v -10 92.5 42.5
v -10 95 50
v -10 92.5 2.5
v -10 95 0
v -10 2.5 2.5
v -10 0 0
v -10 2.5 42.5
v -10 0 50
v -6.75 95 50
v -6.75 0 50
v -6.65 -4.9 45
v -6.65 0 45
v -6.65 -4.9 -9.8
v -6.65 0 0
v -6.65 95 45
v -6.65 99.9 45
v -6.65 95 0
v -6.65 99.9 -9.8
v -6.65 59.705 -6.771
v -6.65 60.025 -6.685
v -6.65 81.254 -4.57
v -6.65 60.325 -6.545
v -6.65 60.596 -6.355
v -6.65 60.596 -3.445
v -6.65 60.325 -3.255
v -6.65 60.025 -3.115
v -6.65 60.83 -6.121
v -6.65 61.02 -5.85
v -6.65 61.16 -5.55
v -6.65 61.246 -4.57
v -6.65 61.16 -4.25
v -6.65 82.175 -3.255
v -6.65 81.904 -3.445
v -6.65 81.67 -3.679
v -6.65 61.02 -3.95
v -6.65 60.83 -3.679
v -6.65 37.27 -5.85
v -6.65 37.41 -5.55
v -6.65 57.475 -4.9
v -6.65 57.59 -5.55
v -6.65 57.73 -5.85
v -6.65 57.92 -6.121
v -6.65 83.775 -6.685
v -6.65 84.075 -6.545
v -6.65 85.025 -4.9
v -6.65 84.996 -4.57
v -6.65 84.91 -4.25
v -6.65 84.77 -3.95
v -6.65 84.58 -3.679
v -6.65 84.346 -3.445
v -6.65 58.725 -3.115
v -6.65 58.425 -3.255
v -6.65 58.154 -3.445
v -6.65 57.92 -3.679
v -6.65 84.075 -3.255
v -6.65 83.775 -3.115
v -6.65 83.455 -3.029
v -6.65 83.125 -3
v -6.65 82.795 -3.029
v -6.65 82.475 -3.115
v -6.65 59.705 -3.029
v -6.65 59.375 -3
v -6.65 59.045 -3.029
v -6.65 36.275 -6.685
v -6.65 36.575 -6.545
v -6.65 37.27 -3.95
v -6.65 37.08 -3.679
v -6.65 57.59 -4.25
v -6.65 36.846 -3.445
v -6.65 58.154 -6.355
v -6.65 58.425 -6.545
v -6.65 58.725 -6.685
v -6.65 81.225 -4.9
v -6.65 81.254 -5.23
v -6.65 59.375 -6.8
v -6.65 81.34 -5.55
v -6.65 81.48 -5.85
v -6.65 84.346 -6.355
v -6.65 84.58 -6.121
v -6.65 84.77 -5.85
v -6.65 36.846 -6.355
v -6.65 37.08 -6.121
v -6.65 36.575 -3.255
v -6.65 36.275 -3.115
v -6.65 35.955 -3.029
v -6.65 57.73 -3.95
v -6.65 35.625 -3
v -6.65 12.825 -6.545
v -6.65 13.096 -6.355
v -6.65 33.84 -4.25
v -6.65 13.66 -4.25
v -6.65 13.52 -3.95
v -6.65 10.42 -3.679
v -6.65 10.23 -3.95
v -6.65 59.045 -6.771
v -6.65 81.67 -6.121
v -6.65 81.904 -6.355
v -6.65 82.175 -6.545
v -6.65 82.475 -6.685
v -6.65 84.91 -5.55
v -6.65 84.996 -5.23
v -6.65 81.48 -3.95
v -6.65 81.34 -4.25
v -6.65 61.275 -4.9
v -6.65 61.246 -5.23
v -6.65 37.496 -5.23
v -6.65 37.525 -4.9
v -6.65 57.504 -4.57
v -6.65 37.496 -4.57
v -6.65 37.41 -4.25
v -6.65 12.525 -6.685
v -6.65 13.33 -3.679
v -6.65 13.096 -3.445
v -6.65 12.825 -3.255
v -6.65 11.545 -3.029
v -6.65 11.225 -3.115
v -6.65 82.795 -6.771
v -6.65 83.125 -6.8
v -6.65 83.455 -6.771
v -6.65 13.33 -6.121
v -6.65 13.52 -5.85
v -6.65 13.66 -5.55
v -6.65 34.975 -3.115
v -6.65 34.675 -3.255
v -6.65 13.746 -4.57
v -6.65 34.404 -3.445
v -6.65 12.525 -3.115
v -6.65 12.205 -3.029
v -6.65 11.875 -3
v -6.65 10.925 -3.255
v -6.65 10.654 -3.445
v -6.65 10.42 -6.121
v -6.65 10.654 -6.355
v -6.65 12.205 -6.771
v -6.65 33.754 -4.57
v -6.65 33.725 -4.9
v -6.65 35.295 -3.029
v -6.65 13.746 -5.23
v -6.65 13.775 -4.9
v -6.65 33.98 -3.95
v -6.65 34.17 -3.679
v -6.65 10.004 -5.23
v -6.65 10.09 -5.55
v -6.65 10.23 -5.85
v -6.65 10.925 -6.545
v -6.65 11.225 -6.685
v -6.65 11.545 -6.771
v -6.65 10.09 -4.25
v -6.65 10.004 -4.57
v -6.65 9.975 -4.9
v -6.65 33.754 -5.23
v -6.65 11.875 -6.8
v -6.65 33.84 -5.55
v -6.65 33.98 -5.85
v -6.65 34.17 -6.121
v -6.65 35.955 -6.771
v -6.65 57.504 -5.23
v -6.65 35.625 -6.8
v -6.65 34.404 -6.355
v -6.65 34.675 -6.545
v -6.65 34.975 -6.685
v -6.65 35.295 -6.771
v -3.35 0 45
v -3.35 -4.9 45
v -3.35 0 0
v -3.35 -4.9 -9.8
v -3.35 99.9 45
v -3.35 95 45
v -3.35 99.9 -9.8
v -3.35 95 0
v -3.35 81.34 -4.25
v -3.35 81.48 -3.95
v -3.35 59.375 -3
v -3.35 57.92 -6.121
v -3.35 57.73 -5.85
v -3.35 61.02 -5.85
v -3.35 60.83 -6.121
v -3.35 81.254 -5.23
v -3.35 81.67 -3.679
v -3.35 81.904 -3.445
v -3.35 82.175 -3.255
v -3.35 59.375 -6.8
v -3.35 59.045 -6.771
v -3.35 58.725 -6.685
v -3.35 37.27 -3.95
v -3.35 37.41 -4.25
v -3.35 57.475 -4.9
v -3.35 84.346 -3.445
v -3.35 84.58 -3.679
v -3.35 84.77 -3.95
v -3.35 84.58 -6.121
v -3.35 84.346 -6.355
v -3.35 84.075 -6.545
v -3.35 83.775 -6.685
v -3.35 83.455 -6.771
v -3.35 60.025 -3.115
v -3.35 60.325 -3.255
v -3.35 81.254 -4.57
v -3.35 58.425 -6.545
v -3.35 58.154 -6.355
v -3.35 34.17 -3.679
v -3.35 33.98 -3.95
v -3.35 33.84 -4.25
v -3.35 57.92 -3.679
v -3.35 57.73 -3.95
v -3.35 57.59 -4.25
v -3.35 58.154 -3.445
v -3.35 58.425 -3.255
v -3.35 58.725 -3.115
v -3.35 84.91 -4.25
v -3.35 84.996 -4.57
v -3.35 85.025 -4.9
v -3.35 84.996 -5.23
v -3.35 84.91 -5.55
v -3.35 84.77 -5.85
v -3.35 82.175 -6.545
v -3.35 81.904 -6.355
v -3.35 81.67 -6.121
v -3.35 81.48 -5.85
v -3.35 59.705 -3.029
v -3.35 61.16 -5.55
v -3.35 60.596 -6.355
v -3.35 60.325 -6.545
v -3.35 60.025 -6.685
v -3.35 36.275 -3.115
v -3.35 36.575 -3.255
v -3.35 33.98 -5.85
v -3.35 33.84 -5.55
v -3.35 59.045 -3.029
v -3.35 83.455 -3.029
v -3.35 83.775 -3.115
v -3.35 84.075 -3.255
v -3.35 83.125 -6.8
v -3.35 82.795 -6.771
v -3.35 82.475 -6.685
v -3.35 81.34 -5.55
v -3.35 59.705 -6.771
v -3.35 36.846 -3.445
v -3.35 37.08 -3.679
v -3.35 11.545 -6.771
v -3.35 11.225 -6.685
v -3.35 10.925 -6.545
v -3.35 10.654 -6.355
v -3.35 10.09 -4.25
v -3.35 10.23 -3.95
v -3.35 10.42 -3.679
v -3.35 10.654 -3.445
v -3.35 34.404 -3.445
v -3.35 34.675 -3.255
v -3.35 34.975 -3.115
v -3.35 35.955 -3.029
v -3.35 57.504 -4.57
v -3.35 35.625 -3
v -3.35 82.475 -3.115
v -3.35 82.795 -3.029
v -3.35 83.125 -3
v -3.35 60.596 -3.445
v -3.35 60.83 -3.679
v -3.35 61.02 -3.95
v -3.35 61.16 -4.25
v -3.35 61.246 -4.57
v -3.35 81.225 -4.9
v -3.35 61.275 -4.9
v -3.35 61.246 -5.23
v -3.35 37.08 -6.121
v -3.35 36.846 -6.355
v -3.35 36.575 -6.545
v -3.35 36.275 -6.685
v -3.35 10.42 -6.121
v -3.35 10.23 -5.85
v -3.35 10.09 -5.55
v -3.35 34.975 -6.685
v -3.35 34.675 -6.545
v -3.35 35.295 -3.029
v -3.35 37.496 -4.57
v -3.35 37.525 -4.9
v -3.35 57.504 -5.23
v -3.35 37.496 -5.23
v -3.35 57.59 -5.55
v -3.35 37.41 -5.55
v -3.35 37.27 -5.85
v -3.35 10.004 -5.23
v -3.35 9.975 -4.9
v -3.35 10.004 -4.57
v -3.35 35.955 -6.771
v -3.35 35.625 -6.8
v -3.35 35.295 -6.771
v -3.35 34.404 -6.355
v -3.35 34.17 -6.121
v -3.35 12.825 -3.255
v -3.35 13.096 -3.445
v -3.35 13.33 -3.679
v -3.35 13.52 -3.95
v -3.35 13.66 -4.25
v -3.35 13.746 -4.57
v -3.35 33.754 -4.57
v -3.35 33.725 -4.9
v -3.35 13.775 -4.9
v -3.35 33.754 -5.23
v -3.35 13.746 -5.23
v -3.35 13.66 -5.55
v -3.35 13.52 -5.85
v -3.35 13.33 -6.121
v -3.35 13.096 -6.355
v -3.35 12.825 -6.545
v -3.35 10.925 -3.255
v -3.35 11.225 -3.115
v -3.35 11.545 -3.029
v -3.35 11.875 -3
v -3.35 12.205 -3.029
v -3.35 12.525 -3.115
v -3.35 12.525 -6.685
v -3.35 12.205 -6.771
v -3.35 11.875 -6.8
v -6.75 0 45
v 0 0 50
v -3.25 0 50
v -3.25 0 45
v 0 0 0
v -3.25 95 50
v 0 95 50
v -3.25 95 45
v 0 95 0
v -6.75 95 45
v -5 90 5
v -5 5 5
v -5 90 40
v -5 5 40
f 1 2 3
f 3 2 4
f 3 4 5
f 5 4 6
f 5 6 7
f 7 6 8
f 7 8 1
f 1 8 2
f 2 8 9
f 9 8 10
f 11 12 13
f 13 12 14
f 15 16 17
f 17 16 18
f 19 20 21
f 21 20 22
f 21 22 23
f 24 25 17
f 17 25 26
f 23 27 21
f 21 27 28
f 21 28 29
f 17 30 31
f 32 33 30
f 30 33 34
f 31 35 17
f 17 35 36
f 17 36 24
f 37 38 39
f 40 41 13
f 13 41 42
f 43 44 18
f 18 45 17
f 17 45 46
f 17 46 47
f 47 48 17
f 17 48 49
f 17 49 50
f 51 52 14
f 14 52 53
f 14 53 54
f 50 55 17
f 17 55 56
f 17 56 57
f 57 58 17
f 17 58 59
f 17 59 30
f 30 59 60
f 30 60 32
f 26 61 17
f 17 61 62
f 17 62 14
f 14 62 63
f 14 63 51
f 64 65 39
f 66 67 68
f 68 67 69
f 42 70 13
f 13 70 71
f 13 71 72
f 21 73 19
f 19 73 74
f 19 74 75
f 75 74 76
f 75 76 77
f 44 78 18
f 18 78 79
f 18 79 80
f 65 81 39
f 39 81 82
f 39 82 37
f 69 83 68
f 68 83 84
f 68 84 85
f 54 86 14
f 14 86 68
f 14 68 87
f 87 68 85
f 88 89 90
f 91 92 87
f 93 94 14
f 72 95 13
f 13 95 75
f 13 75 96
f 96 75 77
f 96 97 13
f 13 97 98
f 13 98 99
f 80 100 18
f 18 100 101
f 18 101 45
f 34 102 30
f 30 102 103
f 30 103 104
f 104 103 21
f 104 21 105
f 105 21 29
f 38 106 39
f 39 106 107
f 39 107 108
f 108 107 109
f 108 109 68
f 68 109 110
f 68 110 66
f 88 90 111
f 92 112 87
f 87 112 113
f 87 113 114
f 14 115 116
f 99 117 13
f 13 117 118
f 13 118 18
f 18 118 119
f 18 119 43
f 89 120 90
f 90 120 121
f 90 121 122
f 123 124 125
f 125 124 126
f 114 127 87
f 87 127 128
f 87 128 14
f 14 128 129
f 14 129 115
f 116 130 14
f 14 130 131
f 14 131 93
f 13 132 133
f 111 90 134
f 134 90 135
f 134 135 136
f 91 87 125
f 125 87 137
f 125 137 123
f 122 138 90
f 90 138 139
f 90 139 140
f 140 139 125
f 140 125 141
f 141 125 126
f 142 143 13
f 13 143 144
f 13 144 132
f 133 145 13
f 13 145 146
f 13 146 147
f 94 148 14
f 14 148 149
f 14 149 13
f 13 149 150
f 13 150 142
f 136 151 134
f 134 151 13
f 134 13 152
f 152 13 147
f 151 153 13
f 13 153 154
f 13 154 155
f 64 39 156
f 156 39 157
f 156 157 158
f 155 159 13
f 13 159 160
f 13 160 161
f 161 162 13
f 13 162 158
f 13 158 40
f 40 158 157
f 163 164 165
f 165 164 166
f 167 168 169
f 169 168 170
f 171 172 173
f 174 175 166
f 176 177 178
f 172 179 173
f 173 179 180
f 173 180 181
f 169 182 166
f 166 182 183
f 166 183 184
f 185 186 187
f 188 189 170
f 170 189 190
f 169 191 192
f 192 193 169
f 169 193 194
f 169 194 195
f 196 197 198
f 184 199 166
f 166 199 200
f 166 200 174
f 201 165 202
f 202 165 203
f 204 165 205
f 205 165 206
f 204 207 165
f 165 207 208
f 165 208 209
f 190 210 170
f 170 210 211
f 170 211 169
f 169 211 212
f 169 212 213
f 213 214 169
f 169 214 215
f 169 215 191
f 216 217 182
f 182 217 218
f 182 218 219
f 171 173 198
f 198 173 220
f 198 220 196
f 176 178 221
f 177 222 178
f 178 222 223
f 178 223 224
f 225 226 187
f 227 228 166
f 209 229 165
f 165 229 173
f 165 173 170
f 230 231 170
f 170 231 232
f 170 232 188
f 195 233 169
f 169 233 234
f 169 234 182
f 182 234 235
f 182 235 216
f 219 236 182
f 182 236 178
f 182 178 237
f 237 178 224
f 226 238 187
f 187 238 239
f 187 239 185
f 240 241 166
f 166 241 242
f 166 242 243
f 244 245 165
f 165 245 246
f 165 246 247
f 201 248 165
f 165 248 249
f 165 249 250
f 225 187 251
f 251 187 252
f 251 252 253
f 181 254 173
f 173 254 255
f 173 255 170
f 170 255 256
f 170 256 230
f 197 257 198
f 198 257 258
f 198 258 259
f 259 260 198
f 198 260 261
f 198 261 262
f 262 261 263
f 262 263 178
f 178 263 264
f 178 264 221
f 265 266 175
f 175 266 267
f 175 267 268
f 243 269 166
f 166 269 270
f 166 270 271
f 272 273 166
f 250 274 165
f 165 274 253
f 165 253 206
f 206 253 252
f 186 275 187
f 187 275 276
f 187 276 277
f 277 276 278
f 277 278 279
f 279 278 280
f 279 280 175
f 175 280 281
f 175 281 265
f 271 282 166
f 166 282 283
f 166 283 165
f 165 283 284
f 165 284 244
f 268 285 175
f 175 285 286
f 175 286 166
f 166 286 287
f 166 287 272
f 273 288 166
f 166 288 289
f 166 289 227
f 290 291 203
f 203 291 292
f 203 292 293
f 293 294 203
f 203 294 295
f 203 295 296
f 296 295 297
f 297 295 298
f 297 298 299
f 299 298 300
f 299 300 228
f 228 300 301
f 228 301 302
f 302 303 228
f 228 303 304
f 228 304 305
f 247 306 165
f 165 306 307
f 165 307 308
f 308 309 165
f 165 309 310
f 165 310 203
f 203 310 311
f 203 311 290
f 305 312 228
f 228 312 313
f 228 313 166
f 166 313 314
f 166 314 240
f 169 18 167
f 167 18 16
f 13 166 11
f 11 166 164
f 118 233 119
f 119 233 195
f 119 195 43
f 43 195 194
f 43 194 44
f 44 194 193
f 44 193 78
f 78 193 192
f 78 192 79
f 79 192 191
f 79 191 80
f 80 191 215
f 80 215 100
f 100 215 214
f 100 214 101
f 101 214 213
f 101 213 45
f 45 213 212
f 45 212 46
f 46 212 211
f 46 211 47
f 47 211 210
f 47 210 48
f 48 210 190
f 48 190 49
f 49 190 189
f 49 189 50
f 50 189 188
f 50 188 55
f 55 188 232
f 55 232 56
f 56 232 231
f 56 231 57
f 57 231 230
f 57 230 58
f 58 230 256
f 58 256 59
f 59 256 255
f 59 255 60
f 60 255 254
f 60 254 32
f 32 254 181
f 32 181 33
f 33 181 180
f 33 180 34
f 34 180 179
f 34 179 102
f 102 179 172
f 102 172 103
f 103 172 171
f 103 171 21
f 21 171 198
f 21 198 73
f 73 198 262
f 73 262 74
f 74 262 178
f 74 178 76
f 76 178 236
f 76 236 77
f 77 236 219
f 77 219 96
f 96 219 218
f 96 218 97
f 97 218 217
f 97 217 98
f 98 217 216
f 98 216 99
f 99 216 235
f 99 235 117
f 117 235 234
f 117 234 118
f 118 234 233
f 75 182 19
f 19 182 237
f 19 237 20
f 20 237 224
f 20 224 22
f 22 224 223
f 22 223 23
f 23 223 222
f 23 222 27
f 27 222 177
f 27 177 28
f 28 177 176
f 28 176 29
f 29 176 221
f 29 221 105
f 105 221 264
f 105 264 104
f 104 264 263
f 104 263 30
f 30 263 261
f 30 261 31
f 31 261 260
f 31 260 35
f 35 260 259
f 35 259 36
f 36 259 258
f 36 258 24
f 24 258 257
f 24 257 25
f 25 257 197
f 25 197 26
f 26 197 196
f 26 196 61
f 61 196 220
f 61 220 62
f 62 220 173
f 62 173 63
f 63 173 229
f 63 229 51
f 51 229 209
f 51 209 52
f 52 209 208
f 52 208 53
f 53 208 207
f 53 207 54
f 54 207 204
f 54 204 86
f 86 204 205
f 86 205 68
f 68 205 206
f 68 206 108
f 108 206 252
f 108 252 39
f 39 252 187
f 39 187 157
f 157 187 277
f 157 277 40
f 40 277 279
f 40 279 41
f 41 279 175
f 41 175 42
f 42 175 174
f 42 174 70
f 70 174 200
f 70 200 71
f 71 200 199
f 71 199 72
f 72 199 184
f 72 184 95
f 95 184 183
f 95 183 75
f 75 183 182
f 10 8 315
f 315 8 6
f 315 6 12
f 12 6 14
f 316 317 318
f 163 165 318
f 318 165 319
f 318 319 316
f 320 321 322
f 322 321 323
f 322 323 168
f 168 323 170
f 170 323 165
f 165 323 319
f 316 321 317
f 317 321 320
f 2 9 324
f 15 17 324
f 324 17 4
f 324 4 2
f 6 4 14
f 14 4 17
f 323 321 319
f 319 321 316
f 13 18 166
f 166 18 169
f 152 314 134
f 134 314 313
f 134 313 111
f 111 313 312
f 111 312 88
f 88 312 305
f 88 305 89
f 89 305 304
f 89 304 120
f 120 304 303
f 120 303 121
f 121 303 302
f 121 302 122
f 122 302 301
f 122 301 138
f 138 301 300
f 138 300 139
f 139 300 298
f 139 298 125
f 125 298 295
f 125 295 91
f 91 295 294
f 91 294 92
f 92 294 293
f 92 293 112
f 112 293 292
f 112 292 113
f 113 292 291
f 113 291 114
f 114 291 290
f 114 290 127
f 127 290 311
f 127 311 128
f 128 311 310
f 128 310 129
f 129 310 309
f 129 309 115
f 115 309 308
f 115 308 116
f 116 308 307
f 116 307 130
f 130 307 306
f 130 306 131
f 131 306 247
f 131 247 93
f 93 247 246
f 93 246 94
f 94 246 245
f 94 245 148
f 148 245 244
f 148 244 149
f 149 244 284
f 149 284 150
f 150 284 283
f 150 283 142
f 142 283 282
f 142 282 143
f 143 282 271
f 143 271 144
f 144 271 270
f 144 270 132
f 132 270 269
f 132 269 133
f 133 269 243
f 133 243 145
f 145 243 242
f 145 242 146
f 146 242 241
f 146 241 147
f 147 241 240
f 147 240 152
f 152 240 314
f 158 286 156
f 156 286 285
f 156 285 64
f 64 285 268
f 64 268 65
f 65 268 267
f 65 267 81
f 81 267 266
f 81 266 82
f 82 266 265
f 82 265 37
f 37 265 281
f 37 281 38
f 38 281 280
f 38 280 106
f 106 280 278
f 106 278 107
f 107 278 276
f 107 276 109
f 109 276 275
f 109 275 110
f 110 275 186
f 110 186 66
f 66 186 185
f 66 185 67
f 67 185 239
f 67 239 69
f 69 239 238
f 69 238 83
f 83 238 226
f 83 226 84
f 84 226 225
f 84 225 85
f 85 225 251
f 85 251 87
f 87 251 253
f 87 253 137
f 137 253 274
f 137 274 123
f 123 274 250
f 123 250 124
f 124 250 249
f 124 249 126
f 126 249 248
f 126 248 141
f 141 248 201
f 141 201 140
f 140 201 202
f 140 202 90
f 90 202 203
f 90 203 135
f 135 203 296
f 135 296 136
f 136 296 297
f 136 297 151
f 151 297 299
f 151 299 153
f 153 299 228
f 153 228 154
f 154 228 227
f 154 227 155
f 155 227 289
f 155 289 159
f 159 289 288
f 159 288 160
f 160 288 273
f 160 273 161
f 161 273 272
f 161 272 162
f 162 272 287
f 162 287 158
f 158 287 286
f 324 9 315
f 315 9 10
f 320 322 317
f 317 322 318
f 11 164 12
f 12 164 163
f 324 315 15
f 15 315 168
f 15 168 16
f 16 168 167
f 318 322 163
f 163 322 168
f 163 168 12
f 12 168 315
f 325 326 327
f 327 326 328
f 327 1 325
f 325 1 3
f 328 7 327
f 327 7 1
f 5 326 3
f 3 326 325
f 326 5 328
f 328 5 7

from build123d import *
from OCP.BRepFilletAPI import BRepFilletAPI_MakeChamfer

# Parameters (mm, degrees)
SKETCH2_W           = 95
SKETCH2_H           = 50
BOSS_EXTRUDE1_DEPTH = 10
SKETCH3_W           = 3.3
SKETCH3_H           = 9.8
BOSS_EXTRUDE2_DEPTH = 95
SKETCH4_W           = 3.3
SKETCH4_H           = 59.8
BOSS_EXTRUDE3_DEPTH = 4.9
CUT_EXTRUDE1_REACH  = 113.912
SKETCH5_R           = 1.9
LPATTERN1_COUNT     = 4
LPATTERN1_PITCH     = 23.75
SKETCH7_W           = 3.5
SKETCH7_H           = 104.8
CUT_EXTRUDE6_DEPTH  = 5
SKETCH8_W           = 85
SKETCH8_H           = 35
CUT_EXTRUDE7_DEPTH  = 5
CHAMFER1_SIZE       = 2.5
CHAMFER1_SIZE_2     = 5


with BuildPart() as part:
    # Sketch2 → Boss-Extrude1 (new body)
    with BuildSketch(Plane.YZ):
        with Locations((47.5, 25)):
            Rectangle(SKETCH2_W, SKETCH2_H)
    extrude(amount=-BOSS_EXTRUDE1_DEPTH)

    # Sketch3 → Boss-Extrude2 (add)
    with BuildSketch(Plane(origin=(0, 95, 0), x_dir=(-1, 0, 0), z_dir=(0, 1, 0))):
        with Locations((5, -4.9)):
            Rectangle(SKETCH3_W, SKETCH3_H)
    extrude(amount=-BOSS_EXTRUDE2_DEPTH)

    # Sketch4 → Boss-Extrude3 (add)
    with BuildSketch(Plane(origin=(0, 95, 0), x_dir=(-1, 0, 0), z_dir=(0, 1, 0))):
        with Locations((5, 20.1)):
            Rectangle(SKETCH4_W, SKETCH4_H)
    boss_extrude3 = extrude(amount=BOSS_EXTRUDE3_DEPTH)

    # Mirror1: Boss-Extrude3 across plane
    add(boss_extrude3.mirror(Plane.ZX.offset(47.5)))

    # Sketch5 → Cut-Extrude1 (cut, up to next)
    with BuildSketch(Plane.YZ.offset(-3.35), mode=Mode.PRIVATE) as cut_extrude1_sk1:
        with Locations(Location((11.875, -4.9, 0), (0, 0, 270))):
            Circle(SKETCH5_R)
    cut_extrude1_tool1 = extrude(cut_extrude1_sk1.sketch, amount=-CUT_EXTRUDE1_REACH, mode=Mode.PRIVATE) & part.part
    cut_extrude1 = cut_extrude1_tool1.solids().sort_by_distance((-3.35, 11.875, -4.9))[0]
    add(cut_extrude1, mode=Mode.SUBTRACT)

    # LPattern1: Cut-Extrude1 ×4
    with Locations(*[(0, i * LPATTERN1_PITCH, 0) for i in range(1, LPATTERN1_COUNT)]):
        add(cut_extrude1, mode=Mode.SUBTRACT)

    # Sketch7 → Cut-Extrude6 (cut)
    with BuildSketch(Plane.XY.offset(50)):
        with Locations((-5, 47.5)):
            Rectangle(SKETCH7_W, SKETCH7_H)
    extrude(amount=-CUT_EXTRUDE6_DEPTH, mode=Mode.SUBTRACT)

    # Sketch8 → Cut-Extrude7 (cut)
    with BuildSketch(Plane(origin=(-10, 0, 0), x_dir=(0, -1, 0), z_dir=(-1, 0, 0))):
        with Locations((-47.5, 22.5)):
            Rectangle(SKETCH8_W, SKETCH8_H)
    extrude(amount=-CUT_EXTRUDE7_DEPTH, mode=Mode.SUBTRACT)

    # Chamfer1
    chamfer1_edges_1 = [part.edges().sort_by_distance(p)[0] for p in [
        (-10, 5, 22.5),
    ]]
    chamfer1_side_1 = [part.faces().sort_by_distance(p)[0] for p in [
        (-10, 4.95, 22.5),
    ]]
    chamfer1_edges_2 = [part.edges().sort_by_distance(p)[0] for p in [
        (-10, 47.5, 5),
    ]]
    chamfer1_side_2 = [part.faces().sort_by_distance(p)[0] for p in [
        (-10, 47.5, 4.95),
    ]]
    chamfer1_edges_3 = [part.edges().sort_by_distance(p)[0] for p in [
        (-10, 90, 22.5),
    ]]
    chamfer1_side_3 = [part.faces().sort_by_distance(p)[0] for p in [
        (-10, 90.05, 22.5),
    ]]
    chamfer1_edges_4 = [part.edges().sort_by_distance(p)[0] for p in [
        (-10, 47.5, 40),
    ]]
    chamfer1_side_4 = [part.faces().sort_by_distance(p)[0] for p in [
        (-10, 47.5, 40.05),
    ]]
    chamfer1 = BRepFilletAPI_MakeChamfer(part.part.solid().wrapped)
    for e in chamfer1_edges_1:
        chamfer1.Add(CHAMFER1_SIZE - 0.0001, CHAMFER1_SIZE_2 - 0.0001, e.wrapped, chamfer1_side_1[0].wrapped)
    for e in chamfer1_edges_2:
        chamfer1.Add(CHAMFER1_SIZE - 0.0001, CHAMFER1_SIZE_2 - 0.0001, e.wrapped, chamfer1_side_2[0].wrapped)
    for e in chamfer1_edges_3:
        chamfer1.Add(CHAMFER1_SIZE - 0.0001, CHAMFER1_SIZE_2 - 0.0001, e.wrapped, chamfer1_side_3[0].wrapped)
    for e in chamfer1_edges_4:
        chamfer1.Add(CHAMFER1_SIZE - 0.0001, CHAMFER1_SIZE_2 - 0.0001, e.wrapped, chamfer1_side_4[0].wrapped)
    add(Compound.cast(chamfer1.Shape()), mode=Mode.REPLACE)  # a hair under: the kernel refuses the full size


solid = part.part
